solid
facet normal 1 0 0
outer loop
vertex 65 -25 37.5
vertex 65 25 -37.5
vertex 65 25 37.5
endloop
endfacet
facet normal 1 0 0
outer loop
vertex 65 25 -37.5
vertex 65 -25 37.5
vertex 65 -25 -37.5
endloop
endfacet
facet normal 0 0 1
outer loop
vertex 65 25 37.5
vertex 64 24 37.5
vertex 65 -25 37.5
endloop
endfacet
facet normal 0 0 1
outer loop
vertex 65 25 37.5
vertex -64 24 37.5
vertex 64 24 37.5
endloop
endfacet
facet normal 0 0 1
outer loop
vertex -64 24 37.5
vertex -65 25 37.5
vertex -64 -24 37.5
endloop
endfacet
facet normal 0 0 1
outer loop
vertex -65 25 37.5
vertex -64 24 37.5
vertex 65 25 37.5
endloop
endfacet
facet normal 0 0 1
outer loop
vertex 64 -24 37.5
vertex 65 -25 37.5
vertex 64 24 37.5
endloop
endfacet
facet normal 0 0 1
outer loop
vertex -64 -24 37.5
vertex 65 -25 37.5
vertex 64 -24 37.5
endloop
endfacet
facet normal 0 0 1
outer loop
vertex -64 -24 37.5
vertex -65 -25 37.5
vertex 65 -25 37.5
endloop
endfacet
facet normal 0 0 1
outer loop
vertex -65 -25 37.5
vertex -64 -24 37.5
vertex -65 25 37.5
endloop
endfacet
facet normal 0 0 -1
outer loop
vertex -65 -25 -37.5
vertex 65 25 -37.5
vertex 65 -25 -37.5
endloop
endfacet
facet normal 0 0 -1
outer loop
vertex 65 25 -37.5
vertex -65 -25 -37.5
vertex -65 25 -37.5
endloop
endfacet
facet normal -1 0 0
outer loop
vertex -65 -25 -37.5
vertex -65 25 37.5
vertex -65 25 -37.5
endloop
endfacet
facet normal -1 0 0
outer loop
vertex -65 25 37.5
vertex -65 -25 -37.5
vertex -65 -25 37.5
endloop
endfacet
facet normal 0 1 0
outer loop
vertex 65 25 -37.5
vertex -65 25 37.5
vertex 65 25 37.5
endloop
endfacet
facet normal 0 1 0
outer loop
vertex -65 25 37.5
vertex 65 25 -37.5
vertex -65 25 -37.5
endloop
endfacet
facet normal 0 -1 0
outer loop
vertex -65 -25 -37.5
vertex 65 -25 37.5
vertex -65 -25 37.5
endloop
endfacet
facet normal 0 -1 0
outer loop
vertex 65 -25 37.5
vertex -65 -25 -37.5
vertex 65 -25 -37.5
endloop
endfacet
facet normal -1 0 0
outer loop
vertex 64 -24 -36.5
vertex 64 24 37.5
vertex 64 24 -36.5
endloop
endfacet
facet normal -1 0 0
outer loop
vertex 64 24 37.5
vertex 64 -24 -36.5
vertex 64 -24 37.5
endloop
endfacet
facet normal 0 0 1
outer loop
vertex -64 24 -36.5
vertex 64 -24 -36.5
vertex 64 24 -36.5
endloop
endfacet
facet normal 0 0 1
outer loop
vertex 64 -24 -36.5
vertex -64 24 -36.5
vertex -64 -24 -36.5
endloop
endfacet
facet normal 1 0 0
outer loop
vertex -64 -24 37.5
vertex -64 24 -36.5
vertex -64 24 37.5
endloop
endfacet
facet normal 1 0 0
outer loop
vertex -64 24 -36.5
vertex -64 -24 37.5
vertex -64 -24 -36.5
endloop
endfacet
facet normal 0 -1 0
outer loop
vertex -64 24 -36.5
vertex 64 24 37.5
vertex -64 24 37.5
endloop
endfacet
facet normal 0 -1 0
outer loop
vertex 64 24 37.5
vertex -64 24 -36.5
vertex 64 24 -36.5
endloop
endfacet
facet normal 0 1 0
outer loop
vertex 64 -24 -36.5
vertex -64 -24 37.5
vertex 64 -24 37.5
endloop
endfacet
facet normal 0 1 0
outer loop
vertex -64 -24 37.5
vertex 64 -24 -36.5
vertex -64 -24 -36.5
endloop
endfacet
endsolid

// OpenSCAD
// ========================================
// a 130 x 50 x 75 mm enclosure with 1 mm wall thickness
// NeuroCAD canonical IR; dimensions are millimetres
// ========================================
$fn = 48;

difference() {
  cube(size=[130, 50, 75], center=true);
  translate([0, 0, 0.6]) {
    cube(size=[128, 48, 74.2], center=true);
  }
}
